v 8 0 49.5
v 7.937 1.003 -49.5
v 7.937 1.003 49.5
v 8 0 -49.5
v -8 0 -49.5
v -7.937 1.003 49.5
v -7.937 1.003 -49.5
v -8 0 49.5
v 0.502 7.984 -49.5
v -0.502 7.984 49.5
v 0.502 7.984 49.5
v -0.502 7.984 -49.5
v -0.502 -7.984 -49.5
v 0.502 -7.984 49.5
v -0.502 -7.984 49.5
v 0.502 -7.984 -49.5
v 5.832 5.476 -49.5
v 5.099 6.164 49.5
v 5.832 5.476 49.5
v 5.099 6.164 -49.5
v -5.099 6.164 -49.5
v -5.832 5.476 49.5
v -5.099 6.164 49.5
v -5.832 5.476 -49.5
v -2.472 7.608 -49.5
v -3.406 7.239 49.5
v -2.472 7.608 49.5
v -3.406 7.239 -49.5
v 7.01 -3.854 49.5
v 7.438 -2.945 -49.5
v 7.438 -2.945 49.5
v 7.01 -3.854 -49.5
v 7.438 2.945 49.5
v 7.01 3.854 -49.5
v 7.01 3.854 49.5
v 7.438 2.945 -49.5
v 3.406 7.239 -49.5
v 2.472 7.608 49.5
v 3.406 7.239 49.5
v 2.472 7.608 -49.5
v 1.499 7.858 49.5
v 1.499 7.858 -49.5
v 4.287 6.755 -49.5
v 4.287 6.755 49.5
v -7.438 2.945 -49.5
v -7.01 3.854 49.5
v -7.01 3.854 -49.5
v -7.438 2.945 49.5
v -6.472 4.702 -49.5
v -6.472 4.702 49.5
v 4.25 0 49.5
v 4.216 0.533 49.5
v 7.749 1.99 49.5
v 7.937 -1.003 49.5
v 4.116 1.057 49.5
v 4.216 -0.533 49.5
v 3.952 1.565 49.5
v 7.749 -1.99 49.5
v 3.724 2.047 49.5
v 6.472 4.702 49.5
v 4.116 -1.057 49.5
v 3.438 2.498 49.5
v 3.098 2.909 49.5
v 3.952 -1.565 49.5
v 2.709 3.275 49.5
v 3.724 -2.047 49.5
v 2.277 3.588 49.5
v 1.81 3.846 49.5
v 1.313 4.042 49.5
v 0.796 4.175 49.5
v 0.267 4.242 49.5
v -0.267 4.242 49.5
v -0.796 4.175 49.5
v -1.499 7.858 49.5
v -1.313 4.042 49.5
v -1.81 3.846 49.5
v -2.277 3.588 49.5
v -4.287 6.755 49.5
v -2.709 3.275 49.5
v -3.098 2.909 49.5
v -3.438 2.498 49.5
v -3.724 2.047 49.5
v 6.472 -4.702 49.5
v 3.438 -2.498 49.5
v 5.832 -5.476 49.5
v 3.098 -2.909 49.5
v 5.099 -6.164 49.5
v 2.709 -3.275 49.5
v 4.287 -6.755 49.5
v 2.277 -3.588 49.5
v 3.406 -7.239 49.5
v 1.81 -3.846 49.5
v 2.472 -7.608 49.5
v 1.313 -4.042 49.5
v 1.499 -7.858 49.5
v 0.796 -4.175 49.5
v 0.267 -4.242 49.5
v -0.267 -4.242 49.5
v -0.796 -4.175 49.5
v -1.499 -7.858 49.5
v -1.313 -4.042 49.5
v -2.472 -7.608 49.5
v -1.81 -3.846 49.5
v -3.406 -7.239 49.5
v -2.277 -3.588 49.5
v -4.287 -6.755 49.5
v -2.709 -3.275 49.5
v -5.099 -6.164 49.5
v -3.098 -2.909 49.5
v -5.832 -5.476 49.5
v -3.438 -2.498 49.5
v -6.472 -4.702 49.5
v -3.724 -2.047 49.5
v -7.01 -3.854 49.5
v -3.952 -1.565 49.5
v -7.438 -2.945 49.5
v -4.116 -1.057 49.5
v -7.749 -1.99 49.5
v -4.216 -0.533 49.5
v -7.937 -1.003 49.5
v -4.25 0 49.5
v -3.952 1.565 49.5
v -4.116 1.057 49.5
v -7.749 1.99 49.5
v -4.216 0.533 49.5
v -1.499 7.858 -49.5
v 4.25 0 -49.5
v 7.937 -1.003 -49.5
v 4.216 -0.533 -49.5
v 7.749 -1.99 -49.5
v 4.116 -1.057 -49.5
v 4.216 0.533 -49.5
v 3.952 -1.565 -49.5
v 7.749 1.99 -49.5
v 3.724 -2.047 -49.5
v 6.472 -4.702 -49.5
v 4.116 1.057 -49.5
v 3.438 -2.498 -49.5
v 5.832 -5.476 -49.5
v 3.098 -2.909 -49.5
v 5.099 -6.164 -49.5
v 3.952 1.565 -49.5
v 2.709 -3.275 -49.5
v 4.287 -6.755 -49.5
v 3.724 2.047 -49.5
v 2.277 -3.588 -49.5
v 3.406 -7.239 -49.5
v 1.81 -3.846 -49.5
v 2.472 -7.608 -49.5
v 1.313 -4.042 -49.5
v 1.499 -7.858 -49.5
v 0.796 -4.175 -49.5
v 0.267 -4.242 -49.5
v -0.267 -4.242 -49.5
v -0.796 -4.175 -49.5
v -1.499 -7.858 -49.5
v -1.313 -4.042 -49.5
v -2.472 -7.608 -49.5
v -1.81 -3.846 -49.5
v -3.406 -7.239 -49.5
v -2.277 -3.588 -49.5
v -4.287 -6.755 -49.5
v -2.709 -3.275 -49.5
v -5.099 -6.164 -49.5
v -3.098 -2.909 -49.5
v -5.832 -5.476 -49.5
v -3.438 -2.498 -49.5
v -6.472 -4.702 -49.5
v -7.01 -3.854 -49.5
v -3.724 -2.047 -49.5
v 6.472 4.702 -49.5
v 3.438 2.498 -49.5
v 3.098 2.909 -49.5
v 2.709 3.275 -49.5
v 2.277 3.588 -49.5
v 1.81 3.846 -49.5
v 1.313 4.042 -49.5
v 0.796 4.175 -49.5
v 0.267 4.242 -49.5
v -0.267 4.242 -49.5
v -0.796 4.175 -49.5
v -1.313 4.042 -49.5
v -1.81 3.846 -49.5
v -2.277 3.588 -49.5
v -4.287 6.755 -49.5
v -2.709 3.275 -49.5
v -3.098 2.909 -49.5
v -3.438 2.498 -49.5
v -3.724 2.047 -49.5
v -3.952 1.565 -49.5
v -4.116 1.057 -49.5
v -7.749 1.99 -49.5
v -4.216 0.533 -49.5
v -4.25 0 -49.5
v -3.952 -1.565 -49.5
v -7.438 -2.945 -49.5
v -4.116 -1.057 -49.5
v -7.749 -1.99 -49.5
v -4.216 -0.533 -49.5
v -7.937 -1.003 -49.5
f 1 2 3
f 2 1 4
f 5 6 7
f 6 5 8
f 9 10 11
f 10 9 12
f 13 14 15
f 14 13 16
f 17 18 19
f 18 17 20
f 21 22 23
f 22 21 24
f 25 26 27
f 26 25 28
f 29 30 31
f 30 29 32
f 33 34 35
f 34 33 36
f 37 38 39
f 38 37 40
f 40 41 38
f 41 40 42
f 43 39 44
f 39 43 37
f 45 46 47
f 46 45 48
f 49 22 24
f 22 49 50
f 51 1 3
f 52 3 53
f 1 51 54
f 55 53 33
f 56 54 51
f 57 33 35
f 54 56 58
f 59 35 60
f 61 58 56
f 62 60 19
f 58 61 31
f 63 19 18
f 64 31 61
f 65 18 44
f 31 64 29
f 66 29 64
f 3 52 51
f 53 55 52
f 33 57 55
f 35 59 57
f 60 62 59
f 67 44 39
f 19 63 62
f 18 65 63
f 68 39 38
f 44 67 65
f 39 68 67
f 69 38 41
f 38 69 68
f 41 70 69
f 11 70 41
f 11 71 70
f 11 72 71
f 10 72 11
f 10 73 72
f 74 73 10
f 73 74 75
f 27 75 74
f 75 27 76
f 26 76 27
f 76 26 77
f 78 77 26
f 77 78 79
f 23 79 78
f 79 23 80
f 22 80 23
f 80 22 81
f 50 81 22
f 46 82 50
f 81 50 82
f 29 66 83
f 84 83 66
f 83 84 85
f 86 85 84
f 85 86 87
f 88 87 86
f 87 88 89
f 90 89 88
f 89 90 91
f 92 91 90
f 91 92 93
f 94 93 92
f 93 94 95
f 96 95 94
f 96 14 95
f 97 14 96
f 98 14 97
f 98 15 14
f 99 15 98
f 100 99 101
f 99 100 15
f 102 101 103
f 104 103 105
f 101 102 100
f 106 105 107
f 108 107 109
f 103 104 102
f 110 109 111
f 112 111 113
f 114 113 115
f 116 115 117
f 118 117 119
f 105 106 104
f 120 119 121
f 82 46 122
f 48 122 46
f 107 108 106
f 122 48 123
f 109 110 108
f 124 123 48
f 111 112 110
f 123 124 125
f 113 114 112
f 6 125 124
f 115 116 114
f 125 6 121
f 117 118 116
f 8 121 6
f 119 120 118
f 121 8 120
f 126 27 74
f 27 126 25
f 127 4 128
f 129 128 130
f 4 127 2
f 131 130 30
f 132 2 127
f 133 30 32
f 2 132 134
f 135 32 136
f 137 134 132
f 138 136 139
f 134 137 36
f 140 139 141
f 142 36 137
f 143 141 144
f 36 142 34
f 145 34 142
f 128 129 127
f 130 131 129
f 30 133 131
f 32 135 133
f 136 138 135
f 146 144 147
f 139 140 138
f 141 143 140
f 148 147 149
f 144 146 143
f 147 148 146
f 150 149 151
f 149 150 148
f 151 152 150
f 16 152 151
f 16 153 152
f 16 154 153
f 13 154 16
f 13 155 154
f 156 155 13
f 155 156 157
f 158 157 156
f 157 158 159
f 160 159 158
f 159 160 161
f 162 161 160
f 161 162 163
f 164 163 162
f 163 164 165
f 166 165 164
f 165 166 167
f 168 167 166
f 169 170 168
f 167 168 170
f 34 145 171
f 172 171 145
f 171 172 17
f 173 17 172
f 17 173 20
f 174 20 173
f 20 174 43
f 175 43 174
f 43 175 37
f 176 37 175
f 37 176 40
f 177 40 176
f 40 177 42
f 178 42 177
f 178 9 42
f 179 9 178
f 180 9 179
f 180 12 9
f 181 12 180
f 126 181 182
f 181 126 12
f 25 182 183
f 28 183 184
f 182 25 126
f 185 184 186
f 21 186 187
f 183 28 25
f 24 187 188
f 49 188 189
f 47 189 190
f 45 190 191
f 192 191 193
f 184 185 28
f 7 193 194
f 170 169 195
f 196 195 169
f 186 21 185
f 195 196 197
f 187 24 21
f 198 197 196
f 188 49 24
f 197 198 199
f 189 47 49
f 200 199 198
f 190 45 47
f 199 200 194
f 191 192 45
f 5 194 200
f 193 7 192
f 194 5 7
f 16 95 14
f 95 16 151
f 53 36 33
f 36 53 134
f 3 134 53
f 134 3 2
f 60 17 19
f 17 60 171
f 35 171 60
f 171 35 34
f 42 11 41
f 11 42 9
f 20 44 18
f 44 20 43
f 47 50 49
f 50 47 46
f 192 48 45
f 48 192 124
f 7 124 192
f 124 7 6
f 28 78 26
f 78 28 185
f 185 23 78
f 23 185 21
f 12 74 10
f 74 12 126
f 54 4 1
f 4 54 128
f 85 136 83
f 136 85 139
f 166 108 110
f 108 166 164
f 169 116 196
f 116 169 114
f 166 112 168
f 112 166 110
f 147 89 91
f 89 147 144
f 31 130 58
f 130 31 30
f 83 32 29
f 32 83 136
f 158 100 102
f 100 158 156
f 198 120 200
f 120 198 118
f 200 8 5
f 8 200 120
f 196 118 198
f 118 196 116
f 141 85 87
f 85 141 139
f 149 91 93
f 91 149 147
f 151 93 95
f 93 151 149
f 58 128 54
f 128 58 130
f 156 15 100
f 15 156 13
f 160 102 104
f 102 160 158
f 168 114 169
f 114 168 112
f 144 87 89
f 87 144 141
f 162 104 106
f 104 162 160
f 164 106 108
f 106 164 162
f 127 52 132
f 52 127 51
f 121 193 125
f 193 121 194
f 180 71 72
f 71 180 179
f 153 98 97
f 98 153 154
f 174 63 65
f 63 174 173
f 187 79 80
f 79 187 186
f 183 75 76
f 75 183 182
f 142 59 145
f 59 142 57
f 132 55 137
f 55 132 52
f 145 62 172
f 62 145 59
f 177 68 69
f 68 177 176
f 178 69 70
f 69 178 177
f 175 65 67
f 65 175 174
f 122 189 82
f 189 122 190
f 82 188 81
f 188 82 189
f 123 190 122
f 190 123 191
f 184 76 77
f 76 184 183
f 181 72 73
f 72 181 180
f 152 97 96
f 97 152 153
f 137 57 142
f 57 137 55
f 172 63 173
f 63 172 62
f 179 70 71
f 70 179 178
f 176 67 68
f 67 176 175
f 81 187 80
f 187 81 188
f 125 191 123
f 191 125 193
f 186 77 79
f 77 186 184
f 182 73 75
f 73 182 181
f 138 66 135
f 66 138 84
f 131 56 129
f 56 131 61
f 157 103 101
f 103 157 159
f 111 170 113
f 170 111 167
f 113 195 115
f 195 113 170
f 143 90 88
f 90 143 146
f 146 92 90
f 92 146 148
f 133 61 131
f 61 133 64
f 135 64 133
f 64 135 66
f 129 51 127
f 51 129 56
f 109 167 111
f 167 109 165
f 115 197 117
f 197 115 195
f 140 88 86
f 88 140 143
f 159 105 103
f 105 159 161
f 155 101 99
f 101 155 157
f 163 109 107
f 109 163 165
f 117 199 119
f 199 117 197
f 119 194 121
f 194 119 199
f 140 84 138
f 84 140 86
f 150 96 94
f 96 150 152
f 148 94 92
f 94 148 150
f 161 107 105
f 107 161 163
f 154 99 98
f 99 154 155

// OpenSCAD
$fn = 50;


difference() {
	union() {
		translate(v = [0, 0, -49.5000000000]) {
			cylinder(h = 99, r = 8.0000000000);
		}
	}
	union() {
		translate(v = [0, 0, -100.0000000000]) {
			cylinder(h = 200, r = 4.2500000000);
		}
	}
}
